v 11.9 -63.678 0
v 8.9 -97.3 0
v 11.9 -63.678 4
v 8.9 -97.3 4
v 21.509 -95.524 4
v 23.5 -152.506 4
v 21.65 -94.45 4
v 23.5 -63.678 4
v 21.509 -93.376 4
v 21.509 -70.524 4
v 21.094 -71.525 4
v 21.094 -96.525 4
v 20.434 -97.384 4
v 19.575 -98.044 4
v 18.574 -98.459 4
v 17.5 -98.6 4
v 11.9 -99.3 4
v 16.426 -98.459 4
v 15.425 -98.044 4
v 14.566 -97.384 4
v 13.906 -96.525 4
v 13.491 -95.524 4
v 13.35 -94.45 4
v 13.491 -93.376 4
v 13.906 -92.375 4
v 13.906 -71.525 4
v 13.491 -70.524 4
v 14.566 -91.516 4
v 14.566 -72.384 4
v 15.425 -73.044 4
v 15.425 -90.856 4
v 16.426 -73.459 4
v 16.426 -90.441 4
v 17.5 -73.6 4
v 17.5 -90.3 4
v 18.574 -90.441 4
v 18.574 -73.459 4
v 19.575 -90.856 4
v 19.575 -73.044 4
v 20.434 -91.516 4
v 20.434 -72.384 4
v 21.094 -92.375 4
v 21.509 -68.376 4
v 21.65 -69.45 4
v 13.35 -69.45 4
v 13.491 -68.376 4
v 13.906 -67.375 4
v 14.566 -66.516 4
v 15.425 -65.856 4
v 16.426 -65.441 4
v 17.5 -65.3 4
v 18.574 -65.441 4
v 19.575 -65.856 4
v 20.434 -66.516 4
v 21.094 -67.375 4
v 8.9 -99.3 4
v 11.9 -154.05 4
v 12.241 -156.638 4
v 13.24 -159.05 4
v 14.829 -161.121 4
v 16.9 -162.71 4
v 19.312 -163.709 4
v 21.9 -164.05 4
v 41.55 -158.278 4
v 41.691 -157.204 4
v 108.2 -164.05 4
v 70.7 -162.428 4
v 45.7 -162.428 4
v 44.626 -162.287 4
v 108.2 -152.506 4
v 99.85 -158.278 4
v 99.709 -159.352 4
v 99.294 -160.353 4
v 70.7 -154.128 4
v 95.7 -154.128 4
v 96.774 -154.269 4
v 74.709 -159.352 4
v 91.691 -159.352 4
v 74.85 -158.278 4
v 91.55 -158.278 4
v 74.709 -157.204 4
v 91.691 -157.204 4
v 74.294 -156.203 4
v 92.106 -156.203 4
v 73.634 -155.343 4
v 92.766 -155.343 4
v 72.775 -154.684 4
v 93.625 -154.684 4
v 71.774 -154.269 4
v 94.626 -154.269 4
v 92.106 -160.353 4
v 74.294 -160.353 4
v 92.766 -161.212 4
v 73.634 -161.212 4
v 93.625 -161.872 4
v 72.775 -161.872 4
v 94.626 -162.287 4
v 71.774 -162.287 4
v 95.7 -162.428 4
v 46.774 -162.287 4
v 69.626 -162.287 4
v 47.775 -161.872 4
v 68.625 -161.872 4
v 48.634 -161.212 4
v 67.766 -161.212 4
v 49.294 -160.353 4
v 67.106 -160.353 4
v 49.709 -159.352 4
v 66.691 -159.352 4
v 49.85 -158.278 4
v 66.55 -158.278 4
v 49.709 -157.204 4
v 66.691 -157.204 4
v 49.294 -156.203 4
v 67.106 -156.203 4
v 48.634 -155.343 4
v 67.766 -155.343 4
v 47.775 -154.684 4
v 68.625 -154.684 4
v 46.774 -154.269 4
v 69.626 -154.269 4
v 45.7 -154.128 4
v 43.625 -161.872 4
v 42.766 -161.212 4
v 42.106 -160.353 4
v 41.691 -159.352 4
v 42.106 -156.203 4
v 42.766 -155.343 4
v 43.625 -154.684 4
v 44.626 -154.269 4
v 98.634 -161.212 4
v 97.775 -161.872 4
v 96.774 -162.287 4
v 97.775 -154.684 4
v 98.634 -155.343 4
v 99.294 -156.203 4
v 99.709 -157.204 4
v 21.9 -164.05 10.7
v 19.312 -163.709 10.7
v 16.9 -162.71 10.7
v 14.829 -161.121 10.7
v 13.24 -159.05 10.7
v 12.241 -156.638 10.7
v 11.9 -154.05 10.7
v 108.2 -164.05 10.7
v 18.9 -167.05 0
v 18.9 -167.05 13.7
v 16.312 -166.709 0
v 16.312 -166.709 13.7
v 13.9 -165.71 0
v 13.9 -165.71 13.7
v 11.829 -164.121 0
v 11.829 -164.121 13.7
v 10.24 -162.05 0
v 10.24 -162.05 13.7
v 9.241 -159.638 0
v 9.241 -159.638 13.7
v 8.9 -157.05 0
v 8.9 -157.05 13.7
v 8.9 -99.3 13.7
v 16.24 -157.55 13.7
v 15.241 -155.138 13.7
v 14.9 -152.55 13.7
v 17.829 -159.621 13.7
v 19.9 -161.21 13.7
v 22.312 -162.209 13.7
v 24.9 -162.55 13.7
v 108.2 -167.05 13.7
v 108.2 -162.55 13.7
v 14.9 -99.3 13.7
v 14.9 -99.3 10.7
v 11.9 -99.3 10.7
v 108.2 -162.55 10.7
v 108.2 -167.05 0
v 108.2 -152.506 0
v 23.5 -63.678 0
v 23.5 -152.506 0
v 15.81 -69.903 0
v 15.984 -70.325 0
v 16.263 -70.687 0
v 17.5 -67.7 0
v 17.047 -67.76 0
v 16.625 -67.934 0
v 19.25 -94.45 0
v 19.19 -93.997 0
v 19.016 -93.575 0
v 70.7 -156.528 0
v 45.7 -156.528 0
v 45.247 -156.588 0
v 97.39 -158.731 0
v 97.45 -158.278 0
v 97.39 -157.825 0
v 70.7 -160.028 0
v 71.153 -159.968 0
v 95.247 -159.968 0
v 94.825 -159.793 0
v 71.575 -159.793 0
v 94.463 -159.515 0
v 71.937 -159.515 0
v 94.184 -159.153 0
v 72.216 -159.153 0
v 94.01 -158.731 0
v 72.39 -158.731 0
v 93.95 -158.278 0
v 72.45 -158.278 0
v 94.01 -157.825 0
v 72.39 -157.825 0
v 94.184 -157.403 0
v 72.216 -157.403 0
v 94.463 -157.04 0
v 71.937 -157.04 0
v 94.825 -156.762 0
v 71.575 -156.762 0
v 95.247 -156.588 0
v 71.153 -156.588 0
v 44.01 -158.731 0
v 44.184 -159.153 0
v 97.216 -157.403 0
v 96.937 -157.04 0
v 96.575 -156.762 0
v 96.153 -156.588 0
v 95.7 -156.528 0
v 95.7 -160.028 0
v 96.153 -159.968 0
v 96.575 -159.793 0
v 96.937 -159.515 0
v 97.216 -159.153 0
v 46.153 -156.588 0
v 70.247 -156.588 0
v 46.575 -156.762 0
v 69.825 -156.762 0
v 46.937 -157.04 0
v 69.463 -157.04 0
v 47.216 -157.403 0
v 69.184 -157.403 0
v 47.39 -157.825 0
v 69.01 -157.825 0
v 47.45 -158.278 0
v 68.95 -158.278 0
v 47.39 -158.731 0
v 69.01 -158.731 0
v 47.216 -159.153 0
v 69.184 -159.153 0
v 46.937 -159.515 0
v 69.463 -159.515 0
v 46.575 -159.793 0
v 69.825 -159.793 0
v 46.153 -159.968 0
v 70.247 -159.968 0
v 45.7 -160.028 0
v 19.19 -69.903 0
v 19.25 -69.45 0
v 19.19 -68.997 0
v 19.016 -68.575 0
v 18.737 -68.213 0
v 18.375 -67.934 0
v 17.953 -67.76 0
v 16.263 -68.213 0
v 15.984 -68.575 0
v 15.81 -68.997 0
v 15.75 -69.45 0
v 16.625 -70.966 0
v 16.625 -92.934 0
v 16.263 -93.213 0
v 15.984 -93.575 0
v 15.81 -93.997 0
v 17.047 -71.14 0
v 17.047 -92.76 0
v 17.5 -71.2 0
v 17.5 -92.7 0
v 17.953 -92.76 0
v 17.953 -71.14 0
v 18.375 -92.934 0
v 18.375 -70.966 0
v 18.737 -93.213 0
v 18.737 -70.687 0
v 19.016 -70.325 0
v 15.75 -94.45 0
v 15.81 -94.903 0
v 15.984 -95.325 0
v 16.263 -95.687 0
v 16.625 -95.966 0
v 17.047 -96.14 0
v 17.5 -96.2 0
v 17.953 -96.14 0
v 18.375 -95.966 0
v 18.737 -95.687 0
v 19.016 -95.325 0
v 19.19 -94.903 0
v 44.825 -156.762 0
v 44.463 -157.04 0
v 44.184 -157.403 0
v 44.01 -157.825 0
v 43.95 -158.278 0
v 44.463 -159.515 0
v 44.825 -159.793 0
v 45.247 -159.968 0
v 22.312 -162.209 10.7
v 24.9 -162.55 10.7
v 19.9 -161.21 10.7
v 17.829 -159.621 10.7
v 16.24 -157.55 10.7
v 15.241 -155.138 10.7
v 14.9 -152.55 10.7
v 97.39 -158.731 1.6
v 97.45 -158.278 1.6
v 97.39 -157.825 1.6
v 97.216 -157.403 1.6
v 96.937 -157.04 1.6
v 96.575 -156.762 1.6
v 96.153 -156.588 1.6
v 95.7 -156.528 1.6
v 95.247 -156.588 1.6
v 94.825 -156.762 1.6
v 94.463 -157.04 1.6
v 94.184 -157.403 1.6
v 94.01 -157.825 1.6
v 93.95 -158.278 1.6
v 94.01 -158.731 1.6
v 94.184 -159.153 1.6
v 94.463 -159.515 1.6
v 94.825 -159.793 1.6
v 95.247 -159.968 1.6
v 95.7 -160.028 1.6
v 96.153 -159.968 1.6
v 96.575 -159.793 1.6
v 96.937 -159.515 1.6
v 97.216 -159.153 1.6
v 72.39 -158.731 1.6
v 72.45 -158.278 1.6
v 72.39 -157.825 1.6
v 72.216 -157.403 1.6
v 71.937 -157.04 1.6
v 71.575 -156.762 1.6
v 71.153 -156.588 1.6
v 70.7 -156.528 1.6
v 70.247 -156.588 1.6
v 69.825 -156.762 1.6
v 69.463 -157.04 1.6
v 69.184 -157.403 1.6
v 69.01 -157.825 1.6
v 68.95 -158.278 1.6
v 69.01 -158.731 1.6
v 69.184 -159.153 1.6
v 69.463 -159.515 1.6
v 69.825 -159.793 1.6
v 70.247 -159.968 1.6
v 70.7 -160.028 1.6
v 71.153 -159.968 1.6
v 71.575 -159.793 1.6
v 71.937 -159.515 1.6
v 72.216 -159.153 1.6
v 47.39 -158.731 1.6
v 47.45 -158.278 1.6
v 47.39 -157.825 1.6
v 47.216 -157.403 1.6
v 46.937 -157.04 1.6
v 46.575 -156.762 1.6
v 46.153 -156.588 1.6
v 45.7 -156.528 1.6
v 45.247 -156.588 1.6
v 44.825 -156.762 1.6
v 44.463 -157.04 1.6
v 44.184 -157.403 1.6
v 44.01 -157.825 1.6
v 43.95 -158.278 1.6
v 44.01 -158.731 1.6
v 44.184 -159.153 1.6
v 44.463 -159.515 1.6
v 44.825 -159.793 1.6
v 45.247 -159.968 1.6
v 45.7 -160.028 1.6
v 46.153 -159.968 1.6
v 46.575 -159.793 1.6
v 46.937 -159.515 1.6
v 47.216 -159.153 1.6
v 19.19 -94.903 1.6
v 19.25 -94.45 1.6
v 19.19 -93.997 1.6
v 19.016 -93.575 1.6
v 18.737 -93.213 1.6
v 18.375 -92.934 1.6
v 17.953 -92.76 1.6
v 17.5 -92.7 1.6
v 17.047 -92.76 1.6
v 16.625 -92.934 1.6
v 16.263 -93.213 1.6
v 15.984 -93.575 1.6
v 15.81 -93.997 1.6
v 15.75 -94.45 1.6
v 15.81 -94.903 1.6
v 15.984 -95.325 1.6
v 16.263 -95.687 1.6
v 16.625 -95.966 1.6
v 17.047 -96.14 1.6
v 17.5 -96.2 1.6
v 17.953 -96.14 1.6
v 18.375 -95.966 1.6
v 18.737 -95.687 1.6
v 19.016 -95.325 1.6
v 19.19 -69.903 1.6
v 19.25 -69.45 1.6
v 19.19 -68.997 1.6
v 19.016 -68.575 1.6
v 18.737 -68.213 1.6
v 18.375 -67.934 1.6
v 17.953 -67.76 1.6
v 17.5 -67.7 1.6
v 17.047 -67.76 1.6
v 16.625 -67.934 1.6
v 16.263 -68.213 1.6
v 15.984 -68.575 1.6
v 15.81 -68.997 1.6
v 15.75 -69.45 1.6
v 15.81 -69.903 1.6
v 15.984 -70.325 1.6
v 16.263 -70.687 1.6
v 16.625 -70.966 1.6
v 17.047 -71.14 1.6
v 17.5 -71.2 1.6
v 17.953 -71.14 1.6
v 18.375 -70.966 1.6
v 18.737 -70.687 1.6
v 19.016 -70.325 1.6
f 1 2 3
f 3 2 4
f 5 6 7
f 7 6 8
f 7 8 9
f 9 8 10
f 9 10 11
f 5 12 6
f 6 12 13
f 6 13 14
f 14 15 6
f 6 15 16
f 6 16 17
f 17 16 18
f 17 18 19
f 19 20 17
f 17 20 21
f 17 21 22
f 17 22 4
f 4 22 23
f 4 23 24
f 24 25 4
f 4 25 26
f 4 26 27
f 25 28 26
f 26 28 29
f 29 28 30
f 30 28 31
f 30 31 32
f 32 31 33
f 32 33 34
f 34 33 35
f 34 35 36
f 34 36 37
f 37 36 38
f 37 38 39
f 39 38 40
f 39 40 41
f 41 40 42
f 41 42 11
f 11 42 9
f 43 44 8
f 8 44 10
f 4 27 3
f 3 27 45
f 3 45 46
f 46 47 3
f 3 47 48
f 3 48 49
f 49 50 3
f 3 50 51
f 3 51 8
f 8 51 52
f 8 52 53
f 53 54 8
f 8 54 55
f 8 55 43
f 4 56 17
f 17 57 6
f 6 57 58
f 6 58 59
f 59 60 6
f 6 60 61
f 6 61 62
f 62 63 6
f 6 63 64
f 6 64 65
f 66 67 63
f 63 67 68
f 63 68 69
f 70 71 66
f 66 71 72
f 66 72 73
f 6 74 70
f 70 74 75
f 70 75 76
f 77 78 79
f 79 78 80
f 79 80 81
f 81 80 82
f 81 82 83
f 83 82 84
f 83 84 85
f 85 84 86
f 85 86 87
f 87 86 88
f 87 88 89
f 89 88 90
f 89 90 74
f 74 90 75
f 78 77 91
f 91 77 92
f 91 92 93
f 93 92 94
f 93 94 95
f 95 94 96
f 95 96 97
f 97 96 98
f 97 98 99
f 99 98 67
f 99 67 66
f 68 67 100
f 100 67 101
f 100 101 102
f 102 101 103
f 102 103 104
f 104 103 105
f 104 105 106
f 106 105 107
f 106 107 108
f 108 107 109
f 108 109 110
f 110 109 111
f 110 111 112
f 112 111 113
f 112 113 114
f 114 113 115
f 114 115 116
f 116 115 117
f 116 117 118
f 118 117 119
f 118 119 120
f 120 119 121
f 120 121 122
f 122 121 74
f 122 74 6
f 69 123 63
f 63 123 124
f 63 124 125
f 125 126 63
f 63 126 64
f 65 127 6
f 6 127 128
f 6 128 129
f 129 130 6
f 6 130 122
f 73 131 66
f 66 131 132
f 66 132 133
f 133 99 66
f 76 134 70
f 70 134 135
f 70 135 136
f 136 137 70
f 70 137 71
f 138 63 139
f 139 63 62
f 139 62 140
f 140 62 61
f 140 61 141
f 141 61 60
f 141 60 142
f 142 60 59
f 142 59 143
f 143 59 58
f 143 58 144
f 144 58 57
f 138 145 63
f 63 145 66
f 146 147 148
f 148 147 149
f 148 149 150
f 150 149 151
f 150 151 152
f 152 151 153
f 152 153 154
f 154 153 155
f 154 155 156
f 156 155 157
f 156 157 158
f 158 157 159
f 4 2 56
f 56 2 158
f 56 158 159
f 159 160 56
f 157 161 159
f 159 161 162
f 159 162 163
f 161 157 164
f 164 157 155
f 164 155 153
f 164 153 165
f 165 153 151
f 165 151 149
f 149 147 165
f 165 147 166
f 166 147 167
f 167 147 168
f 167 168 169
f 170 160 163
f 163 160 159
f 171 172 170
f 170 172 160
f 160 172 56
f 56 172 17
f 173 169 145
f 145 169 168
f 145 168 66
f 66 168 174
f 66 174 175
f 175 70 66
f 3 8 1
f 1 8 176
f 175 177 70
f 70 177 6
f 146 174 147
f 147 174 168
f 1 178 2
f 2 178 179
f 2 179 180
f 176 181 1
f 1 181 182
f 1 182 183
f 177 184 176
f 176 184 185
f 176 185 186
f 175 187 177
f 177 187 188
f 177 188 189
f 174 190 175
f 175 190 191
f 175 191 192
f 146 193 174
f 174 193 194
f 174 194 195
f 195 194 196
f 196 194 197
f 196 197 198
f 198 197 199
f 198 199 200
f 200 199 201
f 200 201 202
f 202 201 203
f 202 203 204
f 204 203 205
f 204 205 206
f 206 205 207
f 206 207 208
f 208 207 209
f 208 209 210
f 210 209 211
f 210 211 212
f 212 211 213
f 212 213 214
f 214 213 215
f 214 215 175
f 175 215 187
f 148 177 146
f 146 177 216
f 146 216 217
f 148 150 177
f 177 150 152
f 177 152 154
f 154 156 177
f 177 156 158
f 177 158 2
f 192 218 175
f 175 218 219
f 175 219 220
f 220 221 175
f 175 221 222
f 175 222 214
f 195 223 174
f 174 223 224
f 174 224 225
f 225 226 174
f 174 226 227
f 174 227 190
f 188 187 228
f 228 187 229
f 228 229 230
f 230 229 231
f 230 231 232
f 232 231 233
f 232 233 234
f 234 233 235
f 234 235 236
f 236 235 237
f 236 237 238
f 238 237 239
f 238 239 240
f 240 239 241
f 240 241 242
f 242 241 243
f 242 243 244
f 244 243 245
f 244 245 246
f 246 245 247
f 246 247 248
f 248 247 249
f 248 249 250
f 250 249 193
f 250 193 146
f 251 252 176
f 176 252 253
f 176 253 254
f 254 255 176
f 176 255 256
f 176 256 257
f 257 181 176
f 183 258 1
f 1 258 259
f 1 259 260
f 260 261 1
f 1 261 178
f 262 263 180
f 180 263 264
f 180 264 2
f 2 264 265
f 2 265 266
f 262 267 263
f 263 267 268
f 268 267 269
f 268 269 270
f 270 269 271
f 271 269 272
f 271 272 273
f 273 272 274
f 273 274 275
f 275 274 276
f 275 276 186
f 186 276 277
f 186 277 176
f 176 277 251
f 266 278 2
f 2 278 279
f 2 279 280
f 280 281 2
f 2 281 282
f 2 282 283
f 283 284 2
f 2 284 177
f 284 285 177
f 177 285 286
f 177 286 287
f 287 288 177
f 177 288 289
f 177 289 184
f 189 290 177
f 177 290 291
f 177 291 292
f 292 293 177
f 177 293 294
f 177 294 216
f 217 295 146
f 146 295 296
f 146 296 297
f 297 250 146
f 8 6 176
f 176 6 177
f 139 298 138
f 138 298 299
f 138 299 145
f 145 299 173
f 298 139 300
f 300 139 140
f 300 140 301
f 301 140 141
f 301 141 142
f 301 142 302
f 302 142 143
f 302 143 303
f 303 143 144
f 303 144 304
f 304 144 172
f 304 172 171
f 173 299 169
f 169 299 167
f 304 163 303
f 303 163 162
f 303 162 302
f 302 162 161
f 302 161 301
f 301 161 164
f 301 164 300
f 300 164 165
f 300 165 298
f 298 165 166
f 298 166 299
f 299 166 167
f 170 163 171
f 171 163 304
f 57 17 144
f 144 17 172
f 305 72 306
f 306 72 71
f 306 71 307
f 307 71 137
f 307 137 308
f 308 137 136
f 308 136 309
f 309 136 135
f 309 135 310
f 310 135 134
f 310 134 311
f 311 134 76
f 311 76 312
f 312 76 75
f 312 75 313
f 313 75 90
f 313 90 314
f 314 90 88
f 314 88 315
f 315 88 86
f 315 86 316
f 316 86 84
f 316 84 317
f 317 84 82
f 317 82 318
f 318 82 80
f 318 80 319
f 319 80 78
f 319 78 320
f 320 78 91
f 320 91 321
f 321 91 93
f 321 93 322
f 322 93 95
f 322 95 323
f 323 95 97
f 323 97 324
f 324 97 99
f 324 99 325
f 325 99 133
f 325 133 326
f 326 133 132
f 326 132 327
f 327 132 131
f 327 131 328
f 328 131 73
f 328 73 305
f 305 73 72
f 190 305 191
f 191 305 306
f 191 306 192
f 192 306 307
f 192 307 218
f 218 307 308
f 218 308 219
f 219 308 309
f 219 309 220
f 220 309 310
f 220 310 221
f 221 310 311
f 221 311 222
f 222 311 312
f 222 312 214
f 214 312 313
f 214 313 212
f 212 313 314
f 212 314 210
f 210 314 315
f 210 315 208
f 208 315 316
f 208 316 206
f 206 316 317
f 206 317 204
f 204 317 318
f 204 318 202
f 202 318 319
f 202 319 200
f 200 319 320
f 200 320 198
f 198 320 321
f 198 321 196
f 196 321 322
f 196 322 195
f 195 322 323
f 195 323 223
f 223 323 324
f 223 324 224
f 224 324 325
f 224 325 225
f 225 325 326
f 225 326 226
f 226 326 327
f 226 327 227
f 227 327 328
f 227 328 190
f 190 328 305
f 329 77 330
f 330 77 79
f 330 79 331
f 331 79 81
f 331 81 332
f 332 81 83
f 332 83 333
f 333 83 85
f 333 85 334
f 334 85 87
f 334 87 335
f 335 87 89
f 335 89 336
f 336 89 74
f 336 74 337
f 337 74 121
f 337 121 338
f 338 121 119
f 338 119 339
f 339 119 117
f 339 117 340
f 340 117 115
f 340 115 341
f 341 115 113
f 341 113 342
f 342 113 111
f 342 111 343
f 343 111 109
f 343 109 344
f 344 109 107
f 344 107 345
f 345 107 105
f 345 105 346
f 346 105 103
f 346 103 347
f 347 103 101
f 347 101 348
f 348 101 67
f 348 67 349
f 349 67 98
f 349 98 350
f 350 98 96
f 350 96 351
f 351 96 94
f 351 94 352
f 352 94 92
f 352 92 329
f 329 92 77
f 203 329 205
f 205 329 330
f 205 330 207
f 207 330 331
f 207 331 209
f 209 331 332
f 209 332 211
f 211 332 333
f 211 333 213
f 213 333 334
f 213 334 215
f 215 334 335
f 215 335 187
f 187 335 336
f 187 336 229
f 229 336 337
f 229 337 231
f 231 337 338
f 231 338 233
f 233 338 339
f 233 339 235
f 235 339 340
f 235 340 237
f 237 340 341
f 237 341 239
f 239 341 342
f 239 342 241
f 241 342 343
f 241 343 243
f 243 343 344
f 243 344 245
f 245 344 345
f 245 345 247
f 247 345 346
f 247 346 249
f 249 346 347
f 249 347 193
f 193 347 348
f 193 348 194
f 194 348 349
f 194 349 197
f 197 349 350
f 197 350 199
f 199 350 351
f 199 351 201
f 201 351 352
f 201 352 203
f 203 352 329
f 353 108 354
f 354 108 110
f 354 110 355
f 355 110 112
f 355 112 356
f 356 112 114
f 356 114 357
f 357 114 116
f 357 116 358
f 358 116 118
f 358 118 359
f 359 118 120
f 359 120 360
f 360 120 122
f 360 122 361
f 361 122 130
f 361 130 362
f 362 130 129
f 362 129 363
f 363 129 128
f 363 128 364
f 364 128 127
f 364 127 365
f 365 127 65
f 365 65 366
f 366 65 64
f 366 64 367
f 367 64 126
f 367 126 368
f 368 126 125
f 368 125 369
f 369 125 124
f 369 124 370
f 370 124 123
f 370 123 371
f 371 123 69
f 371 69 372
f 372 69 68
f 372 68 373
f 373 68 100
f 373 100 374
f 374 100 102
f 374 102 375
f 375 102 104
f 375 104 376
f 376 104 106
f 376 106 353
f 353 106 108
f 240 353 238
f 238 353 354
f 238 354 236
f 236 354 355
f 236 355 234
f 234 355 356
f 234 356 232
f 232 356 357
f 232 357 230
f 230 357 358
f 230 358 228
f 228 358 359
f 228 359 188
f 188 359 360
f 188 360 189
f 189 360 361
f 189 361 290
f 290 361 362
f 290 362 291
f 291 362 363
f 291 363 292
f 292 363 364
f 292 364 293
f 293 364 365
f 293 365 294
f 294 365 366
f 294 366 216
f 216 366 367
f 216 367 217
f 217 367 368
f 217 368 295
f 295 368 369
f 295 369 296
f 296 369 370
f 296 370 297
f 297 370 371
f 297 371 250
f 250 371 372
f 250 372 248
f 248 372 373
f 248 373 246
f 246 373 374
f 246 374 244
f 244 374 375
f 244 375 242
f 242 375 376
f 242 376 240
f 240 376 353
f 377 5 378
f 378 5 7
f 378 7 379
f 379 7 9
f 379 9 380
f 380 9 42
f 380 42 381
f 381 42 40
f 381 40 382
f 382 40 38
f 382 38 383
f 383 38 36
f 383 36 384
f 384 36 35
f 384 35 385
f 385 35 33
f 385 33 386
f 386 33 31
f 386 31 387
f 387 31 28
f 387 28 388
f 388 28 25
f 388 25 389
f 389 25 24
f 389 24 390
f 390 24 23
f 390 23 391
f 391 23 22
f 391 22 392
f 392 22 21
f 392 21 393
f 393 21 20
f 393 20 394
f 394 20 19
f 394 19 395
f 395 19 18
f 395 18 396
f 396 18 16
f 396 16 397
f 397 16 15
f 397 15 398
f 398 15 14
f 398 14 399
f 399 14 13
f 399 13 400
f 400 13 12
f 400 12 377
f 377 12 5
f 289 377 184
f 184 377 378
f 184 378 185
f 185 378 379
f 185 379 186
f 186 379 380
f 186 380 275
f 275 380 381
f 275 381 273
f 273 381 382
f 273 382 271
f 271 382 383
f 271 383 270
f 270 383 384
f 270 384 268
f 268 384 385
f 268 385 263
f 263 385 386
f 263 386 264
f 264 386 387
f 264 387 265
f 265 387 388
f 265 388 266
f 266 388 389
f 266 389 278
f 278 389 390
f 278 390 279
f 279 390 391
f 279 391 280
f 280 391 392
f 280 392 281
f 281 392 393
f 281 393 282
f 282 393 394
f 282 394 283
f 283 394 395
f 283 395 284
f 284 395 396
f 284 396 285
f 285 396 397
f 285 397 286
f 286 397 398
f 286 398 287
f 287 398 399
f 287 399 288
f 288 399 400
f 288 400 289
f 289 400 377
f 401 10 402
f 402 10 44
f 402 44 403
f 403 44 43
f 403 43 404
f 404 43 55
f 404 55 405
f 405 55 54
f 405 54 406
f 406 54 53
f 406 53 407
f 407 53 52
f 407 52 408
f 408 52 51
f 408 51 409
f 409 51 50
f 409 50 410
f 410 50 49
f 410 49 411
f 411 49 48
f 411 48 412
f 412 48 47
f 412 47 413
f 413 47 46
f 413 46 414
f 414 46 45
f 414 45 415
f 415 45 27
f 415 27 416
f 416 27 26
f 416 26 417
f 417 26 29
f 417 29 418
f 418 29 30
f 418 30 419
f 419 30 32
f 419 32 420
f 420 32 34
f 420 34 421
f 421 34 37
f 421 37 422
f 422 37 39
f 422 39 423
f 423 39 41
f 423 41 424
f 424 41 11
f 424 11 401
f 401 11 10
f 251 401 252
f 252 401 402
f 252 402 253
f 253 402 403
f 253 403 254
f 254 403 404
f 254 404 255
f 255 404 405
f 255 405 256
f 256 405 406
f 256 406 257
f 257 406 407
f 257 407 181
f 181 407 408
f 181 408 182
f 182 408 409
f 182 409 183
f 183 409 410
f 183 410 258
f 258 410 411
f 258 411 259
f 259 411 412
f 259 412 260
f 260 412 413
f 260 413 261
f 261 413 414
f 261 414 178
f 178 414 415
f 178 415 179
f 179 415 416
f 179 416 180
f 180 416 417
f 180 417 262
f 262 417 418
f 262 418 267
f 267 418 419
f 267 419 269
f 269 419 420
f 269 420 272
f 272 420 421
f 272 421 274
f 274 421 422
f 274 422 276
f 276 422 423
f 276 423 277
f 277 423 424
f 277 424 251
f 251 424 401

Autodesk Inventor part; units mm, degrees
ref_plane "YZ Plane" through (0, 0, 0) normal (1, 0, 0) x (0, 1, 0)
ref_plane "XZ Plane" through (0, 0, 0) normal (0, 1, 0) x (-1, 0, 0)
ref_plane "XY Plane" through (0, 0, 0) normal (0, 0, 1) x (1, 0, 0)
sketch "Sketch1" plane through (0, 0, 0) normal (0, 0, 1) x (1, 0, 0)
  circle A0 centre (120.7, -158.2779) radius 1.75
  circle A1 centre (95.7, -158.2779) radius 1.75
  circle A2 centre (70.7, -158.2779) radius 1.75
  circle A3 centre (17.5, -69.45) radius 1.75
  circle A4 centre (17.5, -94.45) radius 1.75
  line L0 (135.7, -152.5058) -> (135.7, -164.0501) construction
  circle A5 centre (45.7, -158.2779) radius 1.75
  line L1 (0, 0) -> (135.7, 0) construction
  line L2 (135.7, 0) -> (135.7, -9.1902) construction
  circle A6 centre (125.7, -4.5951) radius 1.75 construction
  circle A7 centre (115.7, -4.5951) radius 1.75 construction
  line L3 (-18.071, -149.5998) -> (178.1747, -149.5998) construction
  line L4 (23.9, 14.4501) -> (135.7, 14.4501)
  line L5 (135.7, 14.4501) -> (135.7, -164.0499)
  line L6 (135.7, -164.0499) -> (23.9, -164.0499)
  line L7 (11.9, -152.0499) -> (11.9, 2.4501)
  arc A8 (23.9, 14.4501) -> (11.9, 2.4501) centre (23.9, 2.4501) ccw
  arc A9 (11.9, -152.0499) -> (23.9, -164.0499) centre (23.9, -152.0499) ccw construction
  line L8 (11.9, -20.5499) -> (8.9, -20.5499)
  line L9 (8.9, -20.5499) -> (8.9, -164.0499)
  line L10 (8.9, -164.0499) -> (11.9, -164.0499)
  line L11 (11.9, -154.0499) -> (11.9, -20.5499)
  line L12 (8.9, -55.2999) -> (11.9, -55.2999)
  line L13 (11.9, -55.2999) -> (11.9, -94.2999)
  line L14 (11.9, -94.2999) -> (8.9, -94.2999)
  line L15 (8.9, -94.2999) -> (8.9, -55.2999)
  line L16 (21.9, -164.0499) -> (135.7, -164.0499)
  line L17 (135.7, -164.0499) -> (135.7, -167.0499)
  line L18 (135.7, -167.0499) -> (8.9, -167.0499)
  line L19 (8.9, -167.0499) -> (8.9, -164.0499)
  arc A10 (11.9, -154.0499) -> (21.9, -164.0499) centre (21.9, -154.0499) ccw
  line L20 (8.9, -20.5499) -> (23.5, -20.5499)
  line L21 (23.5, -167.0499) -> (8.9, -167.0499)
  line L22 (8.9, -167.0499) -> (8.9, -20.5499)
  line L23 (135.7, -138.0558) -> (135.7, -164.0499)
  line L24 (135.7, -164.0499) -> (11.9, -164.0499)
  line L25 (11.9, -164.0499) -> (11.9, -138.0558)
  line L26 (23.5, -20.5499) -> (23.5, -138.0558)
  line L27 (23.5, -149.5998) -> (23.5, -167.0499)
  line L28 (130.7, -138.0558) -> (130.7, -167.0499)
  line L29 (130.7, -167.0499) -> (135.7, -167.0499)
  line L30 (135.7, -167.0499) -> (135.7, -138.0558)
  line L31 (-26.1104, -138.0558) -> (23.5, -138.0558) construction
  line L32 (135.7, -138.0558) -> (178.6938, -138.0558) construction
  circle A11 centre (118.0205, -143.8278) radius 1.75 construction
  line L33 (130.7, -138.0558) -> (130.7, -152.5059)
  line L34 (130.7, -152.5059) -> (23.5, -152.5059)
  line L35 (23.5, -152.5059) -> (23.5, -138.0558)
  point P0 (20.72, -105.8556)
  point P1 (11.9, -164.0499)
  dimension "d0" = 3.5
  dimension "d1" = 3.5
  dimension "d2" = 3.5
  dimension "d3" = 3.5
  dimension "d4" = 3.5
  dimension "d5" = 15
  dimension "d6" = 25
  dimension "d7" = 25
  dimension "d8" = 3.5
  dimension "d9" = 25
  dimension "d10" = 69.45
  dimension "d11" = 25
  dimension "d13" = 3.5
  dimension "d14" = 3.5
  dimension "d15" = 10
  dimension "d16" = 10
  dimension "d17" = 17.5
  dimension "d18" = 0
  dimension "d20" = 123.8
  dimension "d21" = 178.5
  dimension "d22" = 149.5999
  dimension "d23" = 12
  dimension "d26" = 14.4501
  dimension "d27" = 0
  dimension "d28" = 0
  dimension "d29" = 135.7
  dimension "d30" = 3
  dimension "d31" = 35
  dimension "d32" = 0
  dimension "d33" = 3
  dimension "d34" = 39
  dimension "d35" = 69.75
  dimension "d36" = 3
  dimension "d37" = 0
  dimension "d38" = 10
  dimension "d46" = 5
  dimension "d72" = 5.772
  dimension "d73" = 3.5
  dimension "d74" = 5.772
  dimension "d75" = 14.4501
  dimension "d76" = 5.772
extrude "Extrusion1" add sketch "Sketch1" along normal blind 4 contours A0 | L20 L26 L35 L27 L16 A10 L11 L7 | L7 L12 L9 L8 | L28 L18 L27 L16 L6 | L6 L16 L27 L34 L28 | L7 L11 L25 L10 L9 L14 | L27 L18 L19 L10 L24 L16 | L24 L25 A10
chamfer "Chamfer1" distance 2.4 angle 45 5 edges at (15.75, -69.45, 4) (15.75, -94.45, 4) (43.95, -158.2779, 4) (68.95, -158.2779, 4) (93.95, -158.2779, 4)
sketch "Sketch2" plane through (0, 0, 4) normal (0, 0, 1) x (1, 0, 0)
  line L0 (8.9, -20.5499) -> (8.9, -55.2999) projected
  line L1 (11.9, -94.2999) -> (11.9, -55.2999) projected
  line L2 (8.9, -20.5499) -> (11.9, -20.5499)
  line L3 (11.9, -20.5499) -> (11.9, -55.2999)
  line L4 (11.9, -55.2999) -> (8.9, -55.2999)
  line L5 (8.9, -55.2999) -> (8.9, -20.5499)
  line L6 (8.9, -94.2999) -> (8.9, -167.0499) projected
  line L7 (8.9, -167.0499) -> (130.7, -167.0499) projected
  line L8 (8.9, -94.2999) -> (11.9, -94.2999)
  line L9 (11.9, -94.2999) -> (11.9, -167.0499)
  line L10 (11.9, -167.0499) -> (8.9, -167.0499)
  line L11 (8.9, -167.0499) -> (8.9, -94.2999)
  line L12 (130.7, -167.0499) -> (11.9, -167.0499)
  line L13 (11.9, -167.0499) -> (11.9, -164.0499)
  line L14 (11.9, -164.0499) -> (130.7, -164.0499)
  line L15 (130.7, -164.0499) -> (130.7, -167.0499)
  point P0 (0, 0)
  dimension "d47" = 3
extrude "Extrusion2" add sketch "Sketch2" along normal blind 9.7
sketch "Sketch3" plane through (0, 0, 13.7) normal (0, 0, 1) x (1, 0, 0)
  line L0 (8.9, -94.2999) -> (8.9, -167.0499) projected
  line L1 (8.9, -167.0499) -> (130.7, -167.0499) projected
  line L2 (8.9, -94.2999) -> (14.9, -94.2999)
  line L3 (14.9, -94.2999) -> (14.9, -152.5499)
  line L4 (14.9, -167.0499) -> (8.9, -167.0499)
  line L5 (8.9, -167.0499) -> (8.9, -94.2999)
  line L6 (130.7, -167.0499) -> (14.9, -167.0499)
  line L7 (14.9, -167.0499) -> (14.9, -162.5499)
  line L8 (24.9, -162.5499) -> (130.7, -162.5499)
  line L9 (130.7, -162.5499) -> (130.7, -167.0499)
  line L10 (8.9, -20.5499) -> (8.9, -55.2999) projected
  line L11 (8.9, -20.5499) -> (14.9, -20.5499)
  line L12 (14.9, -20.5499) -> (14.9, -55.2999)
  line L13 (14.9, -55.2999) -> (8.9, -55.2999)
  line L14 (8.9, -55.2999) -> (8.9, -20.5499)
  arc A0 (14.9, -152.5499) -> (24.9, -162.5499) centre (24.9, -152.5499) ccw
  point P0 (0, 0)
  dimension "d50" = 6
  dimension "d51" = 4.5
  dimension "d52" = 6
  dimension "d53" = 10
extrude "Extrusion3" add sketch "Sketch3" against normal blind 3
sketch "Sketch4" plane through (0, 0, 13.7) normal (0, 0, 1) x (1, 0, 0)
  line L0 (130.7, -164.0499) -> (130.7, -152.5059) projected
  line L1 (130.7, -138.0558) -> (108.2, -138.0558)
  line L2 (108.2, -138.0558) -> (108.2, -174.4864)
  line L3 (108.2, -174.4864) -> (130.7, -174.4864)
  line L4 (130.7, -174.4864) -> (130.7, -138.0558)
  line L5 (-4.6471, -18.4715) -> (48.1424, -18.4715)
  line L6 (48.1424, -18.4715) -> (48.1424, -63.678)
  line L7 (48.1424, -63.678) -> (-4.6471, -63.678)
  line L8 (-4.6471, -63.678) -> (-4.6471, -18.4715)
  circle A0 centre (17.5, -69.45) radius 4.15 projected
  circle A1 centre (17.5, -69.45) radius 0.7081
  point P0 (0, 0)
  dimension "d62" = 22.5
  dimension "d79" = 5.772
extrude "Extrusion5" cut sketch "Sketch4" against normal blind 22.05 contours L4 L3 L2 L1 L0 | L5 L6 L7 L8
sketch "Sketch5" plane through (0, 0, 13.7) normal (0, 0, 1) x (1, 0, 0)
  line L0 (-3.6304, -50.2999) -> (31.4299, -50.2999)
  line L1 (31.4299, -50.2999) -> (31.4299, -99.2999)
  line L2 (31.4299, -99.2999) -> (-3.6304, -99.2999)
  line L3 (-3.6304, -99.2999) -> (-3.6304, -50.2999)
  line L4 (8.9, -55.2999) -> (14.9, -55.2999) projected
  line L5 (14.9, -94.2999) -> (8.9, -94.2999) projected
  point P0 (0, 0)
  dimension "d67" = 5
  dimension "d68" = 5
extrude "Extrusion6" cut sketch "Sketch5" against normal up to surface (9.7 mm away)
fillet "Fillet1" radius 10 1 edges at (8.9, -167.0499, 6.85)
fillet "Fillet2" radius 10 1 edges at (11.9, -164.0499, 7.35)
chamfer "Chamfer3" distance 3 angle 45 1 edges at (8.9, -94.2999, 2)
sketch "Sketch6" plane through (0, 0, 4) normal (0, 0, 1) x (1, 0, 0)
  line L0 (11.9, -63.678) -> (11.9, -94.2999) projected
  line L1 (8.9, -97.2999) -> (11.9, -94.2999) projected
  line L2 (11.9, -63.678) -> (8.9, -97.2999)
  line L3 (8.9, -97.2999) -> (11.9, -94.2999)
  line L4 (11.9, -94.2999) -> (11.9, -63.678)
  point P0 (0, 0)
extrude "Extrusion7" add sketch "Sketch6" against normal up to surface (4 mm away)
equation "\"d26\" = -0.5 * d22 + 0.5 * d21"
equation "\"d35\" = -0.5 * d34 + 0.5 * d21"
equation "\"d39\" = d19"
equation "\"d19\" = 5.772"
properties part number "iPadGolf6HolderMount"
